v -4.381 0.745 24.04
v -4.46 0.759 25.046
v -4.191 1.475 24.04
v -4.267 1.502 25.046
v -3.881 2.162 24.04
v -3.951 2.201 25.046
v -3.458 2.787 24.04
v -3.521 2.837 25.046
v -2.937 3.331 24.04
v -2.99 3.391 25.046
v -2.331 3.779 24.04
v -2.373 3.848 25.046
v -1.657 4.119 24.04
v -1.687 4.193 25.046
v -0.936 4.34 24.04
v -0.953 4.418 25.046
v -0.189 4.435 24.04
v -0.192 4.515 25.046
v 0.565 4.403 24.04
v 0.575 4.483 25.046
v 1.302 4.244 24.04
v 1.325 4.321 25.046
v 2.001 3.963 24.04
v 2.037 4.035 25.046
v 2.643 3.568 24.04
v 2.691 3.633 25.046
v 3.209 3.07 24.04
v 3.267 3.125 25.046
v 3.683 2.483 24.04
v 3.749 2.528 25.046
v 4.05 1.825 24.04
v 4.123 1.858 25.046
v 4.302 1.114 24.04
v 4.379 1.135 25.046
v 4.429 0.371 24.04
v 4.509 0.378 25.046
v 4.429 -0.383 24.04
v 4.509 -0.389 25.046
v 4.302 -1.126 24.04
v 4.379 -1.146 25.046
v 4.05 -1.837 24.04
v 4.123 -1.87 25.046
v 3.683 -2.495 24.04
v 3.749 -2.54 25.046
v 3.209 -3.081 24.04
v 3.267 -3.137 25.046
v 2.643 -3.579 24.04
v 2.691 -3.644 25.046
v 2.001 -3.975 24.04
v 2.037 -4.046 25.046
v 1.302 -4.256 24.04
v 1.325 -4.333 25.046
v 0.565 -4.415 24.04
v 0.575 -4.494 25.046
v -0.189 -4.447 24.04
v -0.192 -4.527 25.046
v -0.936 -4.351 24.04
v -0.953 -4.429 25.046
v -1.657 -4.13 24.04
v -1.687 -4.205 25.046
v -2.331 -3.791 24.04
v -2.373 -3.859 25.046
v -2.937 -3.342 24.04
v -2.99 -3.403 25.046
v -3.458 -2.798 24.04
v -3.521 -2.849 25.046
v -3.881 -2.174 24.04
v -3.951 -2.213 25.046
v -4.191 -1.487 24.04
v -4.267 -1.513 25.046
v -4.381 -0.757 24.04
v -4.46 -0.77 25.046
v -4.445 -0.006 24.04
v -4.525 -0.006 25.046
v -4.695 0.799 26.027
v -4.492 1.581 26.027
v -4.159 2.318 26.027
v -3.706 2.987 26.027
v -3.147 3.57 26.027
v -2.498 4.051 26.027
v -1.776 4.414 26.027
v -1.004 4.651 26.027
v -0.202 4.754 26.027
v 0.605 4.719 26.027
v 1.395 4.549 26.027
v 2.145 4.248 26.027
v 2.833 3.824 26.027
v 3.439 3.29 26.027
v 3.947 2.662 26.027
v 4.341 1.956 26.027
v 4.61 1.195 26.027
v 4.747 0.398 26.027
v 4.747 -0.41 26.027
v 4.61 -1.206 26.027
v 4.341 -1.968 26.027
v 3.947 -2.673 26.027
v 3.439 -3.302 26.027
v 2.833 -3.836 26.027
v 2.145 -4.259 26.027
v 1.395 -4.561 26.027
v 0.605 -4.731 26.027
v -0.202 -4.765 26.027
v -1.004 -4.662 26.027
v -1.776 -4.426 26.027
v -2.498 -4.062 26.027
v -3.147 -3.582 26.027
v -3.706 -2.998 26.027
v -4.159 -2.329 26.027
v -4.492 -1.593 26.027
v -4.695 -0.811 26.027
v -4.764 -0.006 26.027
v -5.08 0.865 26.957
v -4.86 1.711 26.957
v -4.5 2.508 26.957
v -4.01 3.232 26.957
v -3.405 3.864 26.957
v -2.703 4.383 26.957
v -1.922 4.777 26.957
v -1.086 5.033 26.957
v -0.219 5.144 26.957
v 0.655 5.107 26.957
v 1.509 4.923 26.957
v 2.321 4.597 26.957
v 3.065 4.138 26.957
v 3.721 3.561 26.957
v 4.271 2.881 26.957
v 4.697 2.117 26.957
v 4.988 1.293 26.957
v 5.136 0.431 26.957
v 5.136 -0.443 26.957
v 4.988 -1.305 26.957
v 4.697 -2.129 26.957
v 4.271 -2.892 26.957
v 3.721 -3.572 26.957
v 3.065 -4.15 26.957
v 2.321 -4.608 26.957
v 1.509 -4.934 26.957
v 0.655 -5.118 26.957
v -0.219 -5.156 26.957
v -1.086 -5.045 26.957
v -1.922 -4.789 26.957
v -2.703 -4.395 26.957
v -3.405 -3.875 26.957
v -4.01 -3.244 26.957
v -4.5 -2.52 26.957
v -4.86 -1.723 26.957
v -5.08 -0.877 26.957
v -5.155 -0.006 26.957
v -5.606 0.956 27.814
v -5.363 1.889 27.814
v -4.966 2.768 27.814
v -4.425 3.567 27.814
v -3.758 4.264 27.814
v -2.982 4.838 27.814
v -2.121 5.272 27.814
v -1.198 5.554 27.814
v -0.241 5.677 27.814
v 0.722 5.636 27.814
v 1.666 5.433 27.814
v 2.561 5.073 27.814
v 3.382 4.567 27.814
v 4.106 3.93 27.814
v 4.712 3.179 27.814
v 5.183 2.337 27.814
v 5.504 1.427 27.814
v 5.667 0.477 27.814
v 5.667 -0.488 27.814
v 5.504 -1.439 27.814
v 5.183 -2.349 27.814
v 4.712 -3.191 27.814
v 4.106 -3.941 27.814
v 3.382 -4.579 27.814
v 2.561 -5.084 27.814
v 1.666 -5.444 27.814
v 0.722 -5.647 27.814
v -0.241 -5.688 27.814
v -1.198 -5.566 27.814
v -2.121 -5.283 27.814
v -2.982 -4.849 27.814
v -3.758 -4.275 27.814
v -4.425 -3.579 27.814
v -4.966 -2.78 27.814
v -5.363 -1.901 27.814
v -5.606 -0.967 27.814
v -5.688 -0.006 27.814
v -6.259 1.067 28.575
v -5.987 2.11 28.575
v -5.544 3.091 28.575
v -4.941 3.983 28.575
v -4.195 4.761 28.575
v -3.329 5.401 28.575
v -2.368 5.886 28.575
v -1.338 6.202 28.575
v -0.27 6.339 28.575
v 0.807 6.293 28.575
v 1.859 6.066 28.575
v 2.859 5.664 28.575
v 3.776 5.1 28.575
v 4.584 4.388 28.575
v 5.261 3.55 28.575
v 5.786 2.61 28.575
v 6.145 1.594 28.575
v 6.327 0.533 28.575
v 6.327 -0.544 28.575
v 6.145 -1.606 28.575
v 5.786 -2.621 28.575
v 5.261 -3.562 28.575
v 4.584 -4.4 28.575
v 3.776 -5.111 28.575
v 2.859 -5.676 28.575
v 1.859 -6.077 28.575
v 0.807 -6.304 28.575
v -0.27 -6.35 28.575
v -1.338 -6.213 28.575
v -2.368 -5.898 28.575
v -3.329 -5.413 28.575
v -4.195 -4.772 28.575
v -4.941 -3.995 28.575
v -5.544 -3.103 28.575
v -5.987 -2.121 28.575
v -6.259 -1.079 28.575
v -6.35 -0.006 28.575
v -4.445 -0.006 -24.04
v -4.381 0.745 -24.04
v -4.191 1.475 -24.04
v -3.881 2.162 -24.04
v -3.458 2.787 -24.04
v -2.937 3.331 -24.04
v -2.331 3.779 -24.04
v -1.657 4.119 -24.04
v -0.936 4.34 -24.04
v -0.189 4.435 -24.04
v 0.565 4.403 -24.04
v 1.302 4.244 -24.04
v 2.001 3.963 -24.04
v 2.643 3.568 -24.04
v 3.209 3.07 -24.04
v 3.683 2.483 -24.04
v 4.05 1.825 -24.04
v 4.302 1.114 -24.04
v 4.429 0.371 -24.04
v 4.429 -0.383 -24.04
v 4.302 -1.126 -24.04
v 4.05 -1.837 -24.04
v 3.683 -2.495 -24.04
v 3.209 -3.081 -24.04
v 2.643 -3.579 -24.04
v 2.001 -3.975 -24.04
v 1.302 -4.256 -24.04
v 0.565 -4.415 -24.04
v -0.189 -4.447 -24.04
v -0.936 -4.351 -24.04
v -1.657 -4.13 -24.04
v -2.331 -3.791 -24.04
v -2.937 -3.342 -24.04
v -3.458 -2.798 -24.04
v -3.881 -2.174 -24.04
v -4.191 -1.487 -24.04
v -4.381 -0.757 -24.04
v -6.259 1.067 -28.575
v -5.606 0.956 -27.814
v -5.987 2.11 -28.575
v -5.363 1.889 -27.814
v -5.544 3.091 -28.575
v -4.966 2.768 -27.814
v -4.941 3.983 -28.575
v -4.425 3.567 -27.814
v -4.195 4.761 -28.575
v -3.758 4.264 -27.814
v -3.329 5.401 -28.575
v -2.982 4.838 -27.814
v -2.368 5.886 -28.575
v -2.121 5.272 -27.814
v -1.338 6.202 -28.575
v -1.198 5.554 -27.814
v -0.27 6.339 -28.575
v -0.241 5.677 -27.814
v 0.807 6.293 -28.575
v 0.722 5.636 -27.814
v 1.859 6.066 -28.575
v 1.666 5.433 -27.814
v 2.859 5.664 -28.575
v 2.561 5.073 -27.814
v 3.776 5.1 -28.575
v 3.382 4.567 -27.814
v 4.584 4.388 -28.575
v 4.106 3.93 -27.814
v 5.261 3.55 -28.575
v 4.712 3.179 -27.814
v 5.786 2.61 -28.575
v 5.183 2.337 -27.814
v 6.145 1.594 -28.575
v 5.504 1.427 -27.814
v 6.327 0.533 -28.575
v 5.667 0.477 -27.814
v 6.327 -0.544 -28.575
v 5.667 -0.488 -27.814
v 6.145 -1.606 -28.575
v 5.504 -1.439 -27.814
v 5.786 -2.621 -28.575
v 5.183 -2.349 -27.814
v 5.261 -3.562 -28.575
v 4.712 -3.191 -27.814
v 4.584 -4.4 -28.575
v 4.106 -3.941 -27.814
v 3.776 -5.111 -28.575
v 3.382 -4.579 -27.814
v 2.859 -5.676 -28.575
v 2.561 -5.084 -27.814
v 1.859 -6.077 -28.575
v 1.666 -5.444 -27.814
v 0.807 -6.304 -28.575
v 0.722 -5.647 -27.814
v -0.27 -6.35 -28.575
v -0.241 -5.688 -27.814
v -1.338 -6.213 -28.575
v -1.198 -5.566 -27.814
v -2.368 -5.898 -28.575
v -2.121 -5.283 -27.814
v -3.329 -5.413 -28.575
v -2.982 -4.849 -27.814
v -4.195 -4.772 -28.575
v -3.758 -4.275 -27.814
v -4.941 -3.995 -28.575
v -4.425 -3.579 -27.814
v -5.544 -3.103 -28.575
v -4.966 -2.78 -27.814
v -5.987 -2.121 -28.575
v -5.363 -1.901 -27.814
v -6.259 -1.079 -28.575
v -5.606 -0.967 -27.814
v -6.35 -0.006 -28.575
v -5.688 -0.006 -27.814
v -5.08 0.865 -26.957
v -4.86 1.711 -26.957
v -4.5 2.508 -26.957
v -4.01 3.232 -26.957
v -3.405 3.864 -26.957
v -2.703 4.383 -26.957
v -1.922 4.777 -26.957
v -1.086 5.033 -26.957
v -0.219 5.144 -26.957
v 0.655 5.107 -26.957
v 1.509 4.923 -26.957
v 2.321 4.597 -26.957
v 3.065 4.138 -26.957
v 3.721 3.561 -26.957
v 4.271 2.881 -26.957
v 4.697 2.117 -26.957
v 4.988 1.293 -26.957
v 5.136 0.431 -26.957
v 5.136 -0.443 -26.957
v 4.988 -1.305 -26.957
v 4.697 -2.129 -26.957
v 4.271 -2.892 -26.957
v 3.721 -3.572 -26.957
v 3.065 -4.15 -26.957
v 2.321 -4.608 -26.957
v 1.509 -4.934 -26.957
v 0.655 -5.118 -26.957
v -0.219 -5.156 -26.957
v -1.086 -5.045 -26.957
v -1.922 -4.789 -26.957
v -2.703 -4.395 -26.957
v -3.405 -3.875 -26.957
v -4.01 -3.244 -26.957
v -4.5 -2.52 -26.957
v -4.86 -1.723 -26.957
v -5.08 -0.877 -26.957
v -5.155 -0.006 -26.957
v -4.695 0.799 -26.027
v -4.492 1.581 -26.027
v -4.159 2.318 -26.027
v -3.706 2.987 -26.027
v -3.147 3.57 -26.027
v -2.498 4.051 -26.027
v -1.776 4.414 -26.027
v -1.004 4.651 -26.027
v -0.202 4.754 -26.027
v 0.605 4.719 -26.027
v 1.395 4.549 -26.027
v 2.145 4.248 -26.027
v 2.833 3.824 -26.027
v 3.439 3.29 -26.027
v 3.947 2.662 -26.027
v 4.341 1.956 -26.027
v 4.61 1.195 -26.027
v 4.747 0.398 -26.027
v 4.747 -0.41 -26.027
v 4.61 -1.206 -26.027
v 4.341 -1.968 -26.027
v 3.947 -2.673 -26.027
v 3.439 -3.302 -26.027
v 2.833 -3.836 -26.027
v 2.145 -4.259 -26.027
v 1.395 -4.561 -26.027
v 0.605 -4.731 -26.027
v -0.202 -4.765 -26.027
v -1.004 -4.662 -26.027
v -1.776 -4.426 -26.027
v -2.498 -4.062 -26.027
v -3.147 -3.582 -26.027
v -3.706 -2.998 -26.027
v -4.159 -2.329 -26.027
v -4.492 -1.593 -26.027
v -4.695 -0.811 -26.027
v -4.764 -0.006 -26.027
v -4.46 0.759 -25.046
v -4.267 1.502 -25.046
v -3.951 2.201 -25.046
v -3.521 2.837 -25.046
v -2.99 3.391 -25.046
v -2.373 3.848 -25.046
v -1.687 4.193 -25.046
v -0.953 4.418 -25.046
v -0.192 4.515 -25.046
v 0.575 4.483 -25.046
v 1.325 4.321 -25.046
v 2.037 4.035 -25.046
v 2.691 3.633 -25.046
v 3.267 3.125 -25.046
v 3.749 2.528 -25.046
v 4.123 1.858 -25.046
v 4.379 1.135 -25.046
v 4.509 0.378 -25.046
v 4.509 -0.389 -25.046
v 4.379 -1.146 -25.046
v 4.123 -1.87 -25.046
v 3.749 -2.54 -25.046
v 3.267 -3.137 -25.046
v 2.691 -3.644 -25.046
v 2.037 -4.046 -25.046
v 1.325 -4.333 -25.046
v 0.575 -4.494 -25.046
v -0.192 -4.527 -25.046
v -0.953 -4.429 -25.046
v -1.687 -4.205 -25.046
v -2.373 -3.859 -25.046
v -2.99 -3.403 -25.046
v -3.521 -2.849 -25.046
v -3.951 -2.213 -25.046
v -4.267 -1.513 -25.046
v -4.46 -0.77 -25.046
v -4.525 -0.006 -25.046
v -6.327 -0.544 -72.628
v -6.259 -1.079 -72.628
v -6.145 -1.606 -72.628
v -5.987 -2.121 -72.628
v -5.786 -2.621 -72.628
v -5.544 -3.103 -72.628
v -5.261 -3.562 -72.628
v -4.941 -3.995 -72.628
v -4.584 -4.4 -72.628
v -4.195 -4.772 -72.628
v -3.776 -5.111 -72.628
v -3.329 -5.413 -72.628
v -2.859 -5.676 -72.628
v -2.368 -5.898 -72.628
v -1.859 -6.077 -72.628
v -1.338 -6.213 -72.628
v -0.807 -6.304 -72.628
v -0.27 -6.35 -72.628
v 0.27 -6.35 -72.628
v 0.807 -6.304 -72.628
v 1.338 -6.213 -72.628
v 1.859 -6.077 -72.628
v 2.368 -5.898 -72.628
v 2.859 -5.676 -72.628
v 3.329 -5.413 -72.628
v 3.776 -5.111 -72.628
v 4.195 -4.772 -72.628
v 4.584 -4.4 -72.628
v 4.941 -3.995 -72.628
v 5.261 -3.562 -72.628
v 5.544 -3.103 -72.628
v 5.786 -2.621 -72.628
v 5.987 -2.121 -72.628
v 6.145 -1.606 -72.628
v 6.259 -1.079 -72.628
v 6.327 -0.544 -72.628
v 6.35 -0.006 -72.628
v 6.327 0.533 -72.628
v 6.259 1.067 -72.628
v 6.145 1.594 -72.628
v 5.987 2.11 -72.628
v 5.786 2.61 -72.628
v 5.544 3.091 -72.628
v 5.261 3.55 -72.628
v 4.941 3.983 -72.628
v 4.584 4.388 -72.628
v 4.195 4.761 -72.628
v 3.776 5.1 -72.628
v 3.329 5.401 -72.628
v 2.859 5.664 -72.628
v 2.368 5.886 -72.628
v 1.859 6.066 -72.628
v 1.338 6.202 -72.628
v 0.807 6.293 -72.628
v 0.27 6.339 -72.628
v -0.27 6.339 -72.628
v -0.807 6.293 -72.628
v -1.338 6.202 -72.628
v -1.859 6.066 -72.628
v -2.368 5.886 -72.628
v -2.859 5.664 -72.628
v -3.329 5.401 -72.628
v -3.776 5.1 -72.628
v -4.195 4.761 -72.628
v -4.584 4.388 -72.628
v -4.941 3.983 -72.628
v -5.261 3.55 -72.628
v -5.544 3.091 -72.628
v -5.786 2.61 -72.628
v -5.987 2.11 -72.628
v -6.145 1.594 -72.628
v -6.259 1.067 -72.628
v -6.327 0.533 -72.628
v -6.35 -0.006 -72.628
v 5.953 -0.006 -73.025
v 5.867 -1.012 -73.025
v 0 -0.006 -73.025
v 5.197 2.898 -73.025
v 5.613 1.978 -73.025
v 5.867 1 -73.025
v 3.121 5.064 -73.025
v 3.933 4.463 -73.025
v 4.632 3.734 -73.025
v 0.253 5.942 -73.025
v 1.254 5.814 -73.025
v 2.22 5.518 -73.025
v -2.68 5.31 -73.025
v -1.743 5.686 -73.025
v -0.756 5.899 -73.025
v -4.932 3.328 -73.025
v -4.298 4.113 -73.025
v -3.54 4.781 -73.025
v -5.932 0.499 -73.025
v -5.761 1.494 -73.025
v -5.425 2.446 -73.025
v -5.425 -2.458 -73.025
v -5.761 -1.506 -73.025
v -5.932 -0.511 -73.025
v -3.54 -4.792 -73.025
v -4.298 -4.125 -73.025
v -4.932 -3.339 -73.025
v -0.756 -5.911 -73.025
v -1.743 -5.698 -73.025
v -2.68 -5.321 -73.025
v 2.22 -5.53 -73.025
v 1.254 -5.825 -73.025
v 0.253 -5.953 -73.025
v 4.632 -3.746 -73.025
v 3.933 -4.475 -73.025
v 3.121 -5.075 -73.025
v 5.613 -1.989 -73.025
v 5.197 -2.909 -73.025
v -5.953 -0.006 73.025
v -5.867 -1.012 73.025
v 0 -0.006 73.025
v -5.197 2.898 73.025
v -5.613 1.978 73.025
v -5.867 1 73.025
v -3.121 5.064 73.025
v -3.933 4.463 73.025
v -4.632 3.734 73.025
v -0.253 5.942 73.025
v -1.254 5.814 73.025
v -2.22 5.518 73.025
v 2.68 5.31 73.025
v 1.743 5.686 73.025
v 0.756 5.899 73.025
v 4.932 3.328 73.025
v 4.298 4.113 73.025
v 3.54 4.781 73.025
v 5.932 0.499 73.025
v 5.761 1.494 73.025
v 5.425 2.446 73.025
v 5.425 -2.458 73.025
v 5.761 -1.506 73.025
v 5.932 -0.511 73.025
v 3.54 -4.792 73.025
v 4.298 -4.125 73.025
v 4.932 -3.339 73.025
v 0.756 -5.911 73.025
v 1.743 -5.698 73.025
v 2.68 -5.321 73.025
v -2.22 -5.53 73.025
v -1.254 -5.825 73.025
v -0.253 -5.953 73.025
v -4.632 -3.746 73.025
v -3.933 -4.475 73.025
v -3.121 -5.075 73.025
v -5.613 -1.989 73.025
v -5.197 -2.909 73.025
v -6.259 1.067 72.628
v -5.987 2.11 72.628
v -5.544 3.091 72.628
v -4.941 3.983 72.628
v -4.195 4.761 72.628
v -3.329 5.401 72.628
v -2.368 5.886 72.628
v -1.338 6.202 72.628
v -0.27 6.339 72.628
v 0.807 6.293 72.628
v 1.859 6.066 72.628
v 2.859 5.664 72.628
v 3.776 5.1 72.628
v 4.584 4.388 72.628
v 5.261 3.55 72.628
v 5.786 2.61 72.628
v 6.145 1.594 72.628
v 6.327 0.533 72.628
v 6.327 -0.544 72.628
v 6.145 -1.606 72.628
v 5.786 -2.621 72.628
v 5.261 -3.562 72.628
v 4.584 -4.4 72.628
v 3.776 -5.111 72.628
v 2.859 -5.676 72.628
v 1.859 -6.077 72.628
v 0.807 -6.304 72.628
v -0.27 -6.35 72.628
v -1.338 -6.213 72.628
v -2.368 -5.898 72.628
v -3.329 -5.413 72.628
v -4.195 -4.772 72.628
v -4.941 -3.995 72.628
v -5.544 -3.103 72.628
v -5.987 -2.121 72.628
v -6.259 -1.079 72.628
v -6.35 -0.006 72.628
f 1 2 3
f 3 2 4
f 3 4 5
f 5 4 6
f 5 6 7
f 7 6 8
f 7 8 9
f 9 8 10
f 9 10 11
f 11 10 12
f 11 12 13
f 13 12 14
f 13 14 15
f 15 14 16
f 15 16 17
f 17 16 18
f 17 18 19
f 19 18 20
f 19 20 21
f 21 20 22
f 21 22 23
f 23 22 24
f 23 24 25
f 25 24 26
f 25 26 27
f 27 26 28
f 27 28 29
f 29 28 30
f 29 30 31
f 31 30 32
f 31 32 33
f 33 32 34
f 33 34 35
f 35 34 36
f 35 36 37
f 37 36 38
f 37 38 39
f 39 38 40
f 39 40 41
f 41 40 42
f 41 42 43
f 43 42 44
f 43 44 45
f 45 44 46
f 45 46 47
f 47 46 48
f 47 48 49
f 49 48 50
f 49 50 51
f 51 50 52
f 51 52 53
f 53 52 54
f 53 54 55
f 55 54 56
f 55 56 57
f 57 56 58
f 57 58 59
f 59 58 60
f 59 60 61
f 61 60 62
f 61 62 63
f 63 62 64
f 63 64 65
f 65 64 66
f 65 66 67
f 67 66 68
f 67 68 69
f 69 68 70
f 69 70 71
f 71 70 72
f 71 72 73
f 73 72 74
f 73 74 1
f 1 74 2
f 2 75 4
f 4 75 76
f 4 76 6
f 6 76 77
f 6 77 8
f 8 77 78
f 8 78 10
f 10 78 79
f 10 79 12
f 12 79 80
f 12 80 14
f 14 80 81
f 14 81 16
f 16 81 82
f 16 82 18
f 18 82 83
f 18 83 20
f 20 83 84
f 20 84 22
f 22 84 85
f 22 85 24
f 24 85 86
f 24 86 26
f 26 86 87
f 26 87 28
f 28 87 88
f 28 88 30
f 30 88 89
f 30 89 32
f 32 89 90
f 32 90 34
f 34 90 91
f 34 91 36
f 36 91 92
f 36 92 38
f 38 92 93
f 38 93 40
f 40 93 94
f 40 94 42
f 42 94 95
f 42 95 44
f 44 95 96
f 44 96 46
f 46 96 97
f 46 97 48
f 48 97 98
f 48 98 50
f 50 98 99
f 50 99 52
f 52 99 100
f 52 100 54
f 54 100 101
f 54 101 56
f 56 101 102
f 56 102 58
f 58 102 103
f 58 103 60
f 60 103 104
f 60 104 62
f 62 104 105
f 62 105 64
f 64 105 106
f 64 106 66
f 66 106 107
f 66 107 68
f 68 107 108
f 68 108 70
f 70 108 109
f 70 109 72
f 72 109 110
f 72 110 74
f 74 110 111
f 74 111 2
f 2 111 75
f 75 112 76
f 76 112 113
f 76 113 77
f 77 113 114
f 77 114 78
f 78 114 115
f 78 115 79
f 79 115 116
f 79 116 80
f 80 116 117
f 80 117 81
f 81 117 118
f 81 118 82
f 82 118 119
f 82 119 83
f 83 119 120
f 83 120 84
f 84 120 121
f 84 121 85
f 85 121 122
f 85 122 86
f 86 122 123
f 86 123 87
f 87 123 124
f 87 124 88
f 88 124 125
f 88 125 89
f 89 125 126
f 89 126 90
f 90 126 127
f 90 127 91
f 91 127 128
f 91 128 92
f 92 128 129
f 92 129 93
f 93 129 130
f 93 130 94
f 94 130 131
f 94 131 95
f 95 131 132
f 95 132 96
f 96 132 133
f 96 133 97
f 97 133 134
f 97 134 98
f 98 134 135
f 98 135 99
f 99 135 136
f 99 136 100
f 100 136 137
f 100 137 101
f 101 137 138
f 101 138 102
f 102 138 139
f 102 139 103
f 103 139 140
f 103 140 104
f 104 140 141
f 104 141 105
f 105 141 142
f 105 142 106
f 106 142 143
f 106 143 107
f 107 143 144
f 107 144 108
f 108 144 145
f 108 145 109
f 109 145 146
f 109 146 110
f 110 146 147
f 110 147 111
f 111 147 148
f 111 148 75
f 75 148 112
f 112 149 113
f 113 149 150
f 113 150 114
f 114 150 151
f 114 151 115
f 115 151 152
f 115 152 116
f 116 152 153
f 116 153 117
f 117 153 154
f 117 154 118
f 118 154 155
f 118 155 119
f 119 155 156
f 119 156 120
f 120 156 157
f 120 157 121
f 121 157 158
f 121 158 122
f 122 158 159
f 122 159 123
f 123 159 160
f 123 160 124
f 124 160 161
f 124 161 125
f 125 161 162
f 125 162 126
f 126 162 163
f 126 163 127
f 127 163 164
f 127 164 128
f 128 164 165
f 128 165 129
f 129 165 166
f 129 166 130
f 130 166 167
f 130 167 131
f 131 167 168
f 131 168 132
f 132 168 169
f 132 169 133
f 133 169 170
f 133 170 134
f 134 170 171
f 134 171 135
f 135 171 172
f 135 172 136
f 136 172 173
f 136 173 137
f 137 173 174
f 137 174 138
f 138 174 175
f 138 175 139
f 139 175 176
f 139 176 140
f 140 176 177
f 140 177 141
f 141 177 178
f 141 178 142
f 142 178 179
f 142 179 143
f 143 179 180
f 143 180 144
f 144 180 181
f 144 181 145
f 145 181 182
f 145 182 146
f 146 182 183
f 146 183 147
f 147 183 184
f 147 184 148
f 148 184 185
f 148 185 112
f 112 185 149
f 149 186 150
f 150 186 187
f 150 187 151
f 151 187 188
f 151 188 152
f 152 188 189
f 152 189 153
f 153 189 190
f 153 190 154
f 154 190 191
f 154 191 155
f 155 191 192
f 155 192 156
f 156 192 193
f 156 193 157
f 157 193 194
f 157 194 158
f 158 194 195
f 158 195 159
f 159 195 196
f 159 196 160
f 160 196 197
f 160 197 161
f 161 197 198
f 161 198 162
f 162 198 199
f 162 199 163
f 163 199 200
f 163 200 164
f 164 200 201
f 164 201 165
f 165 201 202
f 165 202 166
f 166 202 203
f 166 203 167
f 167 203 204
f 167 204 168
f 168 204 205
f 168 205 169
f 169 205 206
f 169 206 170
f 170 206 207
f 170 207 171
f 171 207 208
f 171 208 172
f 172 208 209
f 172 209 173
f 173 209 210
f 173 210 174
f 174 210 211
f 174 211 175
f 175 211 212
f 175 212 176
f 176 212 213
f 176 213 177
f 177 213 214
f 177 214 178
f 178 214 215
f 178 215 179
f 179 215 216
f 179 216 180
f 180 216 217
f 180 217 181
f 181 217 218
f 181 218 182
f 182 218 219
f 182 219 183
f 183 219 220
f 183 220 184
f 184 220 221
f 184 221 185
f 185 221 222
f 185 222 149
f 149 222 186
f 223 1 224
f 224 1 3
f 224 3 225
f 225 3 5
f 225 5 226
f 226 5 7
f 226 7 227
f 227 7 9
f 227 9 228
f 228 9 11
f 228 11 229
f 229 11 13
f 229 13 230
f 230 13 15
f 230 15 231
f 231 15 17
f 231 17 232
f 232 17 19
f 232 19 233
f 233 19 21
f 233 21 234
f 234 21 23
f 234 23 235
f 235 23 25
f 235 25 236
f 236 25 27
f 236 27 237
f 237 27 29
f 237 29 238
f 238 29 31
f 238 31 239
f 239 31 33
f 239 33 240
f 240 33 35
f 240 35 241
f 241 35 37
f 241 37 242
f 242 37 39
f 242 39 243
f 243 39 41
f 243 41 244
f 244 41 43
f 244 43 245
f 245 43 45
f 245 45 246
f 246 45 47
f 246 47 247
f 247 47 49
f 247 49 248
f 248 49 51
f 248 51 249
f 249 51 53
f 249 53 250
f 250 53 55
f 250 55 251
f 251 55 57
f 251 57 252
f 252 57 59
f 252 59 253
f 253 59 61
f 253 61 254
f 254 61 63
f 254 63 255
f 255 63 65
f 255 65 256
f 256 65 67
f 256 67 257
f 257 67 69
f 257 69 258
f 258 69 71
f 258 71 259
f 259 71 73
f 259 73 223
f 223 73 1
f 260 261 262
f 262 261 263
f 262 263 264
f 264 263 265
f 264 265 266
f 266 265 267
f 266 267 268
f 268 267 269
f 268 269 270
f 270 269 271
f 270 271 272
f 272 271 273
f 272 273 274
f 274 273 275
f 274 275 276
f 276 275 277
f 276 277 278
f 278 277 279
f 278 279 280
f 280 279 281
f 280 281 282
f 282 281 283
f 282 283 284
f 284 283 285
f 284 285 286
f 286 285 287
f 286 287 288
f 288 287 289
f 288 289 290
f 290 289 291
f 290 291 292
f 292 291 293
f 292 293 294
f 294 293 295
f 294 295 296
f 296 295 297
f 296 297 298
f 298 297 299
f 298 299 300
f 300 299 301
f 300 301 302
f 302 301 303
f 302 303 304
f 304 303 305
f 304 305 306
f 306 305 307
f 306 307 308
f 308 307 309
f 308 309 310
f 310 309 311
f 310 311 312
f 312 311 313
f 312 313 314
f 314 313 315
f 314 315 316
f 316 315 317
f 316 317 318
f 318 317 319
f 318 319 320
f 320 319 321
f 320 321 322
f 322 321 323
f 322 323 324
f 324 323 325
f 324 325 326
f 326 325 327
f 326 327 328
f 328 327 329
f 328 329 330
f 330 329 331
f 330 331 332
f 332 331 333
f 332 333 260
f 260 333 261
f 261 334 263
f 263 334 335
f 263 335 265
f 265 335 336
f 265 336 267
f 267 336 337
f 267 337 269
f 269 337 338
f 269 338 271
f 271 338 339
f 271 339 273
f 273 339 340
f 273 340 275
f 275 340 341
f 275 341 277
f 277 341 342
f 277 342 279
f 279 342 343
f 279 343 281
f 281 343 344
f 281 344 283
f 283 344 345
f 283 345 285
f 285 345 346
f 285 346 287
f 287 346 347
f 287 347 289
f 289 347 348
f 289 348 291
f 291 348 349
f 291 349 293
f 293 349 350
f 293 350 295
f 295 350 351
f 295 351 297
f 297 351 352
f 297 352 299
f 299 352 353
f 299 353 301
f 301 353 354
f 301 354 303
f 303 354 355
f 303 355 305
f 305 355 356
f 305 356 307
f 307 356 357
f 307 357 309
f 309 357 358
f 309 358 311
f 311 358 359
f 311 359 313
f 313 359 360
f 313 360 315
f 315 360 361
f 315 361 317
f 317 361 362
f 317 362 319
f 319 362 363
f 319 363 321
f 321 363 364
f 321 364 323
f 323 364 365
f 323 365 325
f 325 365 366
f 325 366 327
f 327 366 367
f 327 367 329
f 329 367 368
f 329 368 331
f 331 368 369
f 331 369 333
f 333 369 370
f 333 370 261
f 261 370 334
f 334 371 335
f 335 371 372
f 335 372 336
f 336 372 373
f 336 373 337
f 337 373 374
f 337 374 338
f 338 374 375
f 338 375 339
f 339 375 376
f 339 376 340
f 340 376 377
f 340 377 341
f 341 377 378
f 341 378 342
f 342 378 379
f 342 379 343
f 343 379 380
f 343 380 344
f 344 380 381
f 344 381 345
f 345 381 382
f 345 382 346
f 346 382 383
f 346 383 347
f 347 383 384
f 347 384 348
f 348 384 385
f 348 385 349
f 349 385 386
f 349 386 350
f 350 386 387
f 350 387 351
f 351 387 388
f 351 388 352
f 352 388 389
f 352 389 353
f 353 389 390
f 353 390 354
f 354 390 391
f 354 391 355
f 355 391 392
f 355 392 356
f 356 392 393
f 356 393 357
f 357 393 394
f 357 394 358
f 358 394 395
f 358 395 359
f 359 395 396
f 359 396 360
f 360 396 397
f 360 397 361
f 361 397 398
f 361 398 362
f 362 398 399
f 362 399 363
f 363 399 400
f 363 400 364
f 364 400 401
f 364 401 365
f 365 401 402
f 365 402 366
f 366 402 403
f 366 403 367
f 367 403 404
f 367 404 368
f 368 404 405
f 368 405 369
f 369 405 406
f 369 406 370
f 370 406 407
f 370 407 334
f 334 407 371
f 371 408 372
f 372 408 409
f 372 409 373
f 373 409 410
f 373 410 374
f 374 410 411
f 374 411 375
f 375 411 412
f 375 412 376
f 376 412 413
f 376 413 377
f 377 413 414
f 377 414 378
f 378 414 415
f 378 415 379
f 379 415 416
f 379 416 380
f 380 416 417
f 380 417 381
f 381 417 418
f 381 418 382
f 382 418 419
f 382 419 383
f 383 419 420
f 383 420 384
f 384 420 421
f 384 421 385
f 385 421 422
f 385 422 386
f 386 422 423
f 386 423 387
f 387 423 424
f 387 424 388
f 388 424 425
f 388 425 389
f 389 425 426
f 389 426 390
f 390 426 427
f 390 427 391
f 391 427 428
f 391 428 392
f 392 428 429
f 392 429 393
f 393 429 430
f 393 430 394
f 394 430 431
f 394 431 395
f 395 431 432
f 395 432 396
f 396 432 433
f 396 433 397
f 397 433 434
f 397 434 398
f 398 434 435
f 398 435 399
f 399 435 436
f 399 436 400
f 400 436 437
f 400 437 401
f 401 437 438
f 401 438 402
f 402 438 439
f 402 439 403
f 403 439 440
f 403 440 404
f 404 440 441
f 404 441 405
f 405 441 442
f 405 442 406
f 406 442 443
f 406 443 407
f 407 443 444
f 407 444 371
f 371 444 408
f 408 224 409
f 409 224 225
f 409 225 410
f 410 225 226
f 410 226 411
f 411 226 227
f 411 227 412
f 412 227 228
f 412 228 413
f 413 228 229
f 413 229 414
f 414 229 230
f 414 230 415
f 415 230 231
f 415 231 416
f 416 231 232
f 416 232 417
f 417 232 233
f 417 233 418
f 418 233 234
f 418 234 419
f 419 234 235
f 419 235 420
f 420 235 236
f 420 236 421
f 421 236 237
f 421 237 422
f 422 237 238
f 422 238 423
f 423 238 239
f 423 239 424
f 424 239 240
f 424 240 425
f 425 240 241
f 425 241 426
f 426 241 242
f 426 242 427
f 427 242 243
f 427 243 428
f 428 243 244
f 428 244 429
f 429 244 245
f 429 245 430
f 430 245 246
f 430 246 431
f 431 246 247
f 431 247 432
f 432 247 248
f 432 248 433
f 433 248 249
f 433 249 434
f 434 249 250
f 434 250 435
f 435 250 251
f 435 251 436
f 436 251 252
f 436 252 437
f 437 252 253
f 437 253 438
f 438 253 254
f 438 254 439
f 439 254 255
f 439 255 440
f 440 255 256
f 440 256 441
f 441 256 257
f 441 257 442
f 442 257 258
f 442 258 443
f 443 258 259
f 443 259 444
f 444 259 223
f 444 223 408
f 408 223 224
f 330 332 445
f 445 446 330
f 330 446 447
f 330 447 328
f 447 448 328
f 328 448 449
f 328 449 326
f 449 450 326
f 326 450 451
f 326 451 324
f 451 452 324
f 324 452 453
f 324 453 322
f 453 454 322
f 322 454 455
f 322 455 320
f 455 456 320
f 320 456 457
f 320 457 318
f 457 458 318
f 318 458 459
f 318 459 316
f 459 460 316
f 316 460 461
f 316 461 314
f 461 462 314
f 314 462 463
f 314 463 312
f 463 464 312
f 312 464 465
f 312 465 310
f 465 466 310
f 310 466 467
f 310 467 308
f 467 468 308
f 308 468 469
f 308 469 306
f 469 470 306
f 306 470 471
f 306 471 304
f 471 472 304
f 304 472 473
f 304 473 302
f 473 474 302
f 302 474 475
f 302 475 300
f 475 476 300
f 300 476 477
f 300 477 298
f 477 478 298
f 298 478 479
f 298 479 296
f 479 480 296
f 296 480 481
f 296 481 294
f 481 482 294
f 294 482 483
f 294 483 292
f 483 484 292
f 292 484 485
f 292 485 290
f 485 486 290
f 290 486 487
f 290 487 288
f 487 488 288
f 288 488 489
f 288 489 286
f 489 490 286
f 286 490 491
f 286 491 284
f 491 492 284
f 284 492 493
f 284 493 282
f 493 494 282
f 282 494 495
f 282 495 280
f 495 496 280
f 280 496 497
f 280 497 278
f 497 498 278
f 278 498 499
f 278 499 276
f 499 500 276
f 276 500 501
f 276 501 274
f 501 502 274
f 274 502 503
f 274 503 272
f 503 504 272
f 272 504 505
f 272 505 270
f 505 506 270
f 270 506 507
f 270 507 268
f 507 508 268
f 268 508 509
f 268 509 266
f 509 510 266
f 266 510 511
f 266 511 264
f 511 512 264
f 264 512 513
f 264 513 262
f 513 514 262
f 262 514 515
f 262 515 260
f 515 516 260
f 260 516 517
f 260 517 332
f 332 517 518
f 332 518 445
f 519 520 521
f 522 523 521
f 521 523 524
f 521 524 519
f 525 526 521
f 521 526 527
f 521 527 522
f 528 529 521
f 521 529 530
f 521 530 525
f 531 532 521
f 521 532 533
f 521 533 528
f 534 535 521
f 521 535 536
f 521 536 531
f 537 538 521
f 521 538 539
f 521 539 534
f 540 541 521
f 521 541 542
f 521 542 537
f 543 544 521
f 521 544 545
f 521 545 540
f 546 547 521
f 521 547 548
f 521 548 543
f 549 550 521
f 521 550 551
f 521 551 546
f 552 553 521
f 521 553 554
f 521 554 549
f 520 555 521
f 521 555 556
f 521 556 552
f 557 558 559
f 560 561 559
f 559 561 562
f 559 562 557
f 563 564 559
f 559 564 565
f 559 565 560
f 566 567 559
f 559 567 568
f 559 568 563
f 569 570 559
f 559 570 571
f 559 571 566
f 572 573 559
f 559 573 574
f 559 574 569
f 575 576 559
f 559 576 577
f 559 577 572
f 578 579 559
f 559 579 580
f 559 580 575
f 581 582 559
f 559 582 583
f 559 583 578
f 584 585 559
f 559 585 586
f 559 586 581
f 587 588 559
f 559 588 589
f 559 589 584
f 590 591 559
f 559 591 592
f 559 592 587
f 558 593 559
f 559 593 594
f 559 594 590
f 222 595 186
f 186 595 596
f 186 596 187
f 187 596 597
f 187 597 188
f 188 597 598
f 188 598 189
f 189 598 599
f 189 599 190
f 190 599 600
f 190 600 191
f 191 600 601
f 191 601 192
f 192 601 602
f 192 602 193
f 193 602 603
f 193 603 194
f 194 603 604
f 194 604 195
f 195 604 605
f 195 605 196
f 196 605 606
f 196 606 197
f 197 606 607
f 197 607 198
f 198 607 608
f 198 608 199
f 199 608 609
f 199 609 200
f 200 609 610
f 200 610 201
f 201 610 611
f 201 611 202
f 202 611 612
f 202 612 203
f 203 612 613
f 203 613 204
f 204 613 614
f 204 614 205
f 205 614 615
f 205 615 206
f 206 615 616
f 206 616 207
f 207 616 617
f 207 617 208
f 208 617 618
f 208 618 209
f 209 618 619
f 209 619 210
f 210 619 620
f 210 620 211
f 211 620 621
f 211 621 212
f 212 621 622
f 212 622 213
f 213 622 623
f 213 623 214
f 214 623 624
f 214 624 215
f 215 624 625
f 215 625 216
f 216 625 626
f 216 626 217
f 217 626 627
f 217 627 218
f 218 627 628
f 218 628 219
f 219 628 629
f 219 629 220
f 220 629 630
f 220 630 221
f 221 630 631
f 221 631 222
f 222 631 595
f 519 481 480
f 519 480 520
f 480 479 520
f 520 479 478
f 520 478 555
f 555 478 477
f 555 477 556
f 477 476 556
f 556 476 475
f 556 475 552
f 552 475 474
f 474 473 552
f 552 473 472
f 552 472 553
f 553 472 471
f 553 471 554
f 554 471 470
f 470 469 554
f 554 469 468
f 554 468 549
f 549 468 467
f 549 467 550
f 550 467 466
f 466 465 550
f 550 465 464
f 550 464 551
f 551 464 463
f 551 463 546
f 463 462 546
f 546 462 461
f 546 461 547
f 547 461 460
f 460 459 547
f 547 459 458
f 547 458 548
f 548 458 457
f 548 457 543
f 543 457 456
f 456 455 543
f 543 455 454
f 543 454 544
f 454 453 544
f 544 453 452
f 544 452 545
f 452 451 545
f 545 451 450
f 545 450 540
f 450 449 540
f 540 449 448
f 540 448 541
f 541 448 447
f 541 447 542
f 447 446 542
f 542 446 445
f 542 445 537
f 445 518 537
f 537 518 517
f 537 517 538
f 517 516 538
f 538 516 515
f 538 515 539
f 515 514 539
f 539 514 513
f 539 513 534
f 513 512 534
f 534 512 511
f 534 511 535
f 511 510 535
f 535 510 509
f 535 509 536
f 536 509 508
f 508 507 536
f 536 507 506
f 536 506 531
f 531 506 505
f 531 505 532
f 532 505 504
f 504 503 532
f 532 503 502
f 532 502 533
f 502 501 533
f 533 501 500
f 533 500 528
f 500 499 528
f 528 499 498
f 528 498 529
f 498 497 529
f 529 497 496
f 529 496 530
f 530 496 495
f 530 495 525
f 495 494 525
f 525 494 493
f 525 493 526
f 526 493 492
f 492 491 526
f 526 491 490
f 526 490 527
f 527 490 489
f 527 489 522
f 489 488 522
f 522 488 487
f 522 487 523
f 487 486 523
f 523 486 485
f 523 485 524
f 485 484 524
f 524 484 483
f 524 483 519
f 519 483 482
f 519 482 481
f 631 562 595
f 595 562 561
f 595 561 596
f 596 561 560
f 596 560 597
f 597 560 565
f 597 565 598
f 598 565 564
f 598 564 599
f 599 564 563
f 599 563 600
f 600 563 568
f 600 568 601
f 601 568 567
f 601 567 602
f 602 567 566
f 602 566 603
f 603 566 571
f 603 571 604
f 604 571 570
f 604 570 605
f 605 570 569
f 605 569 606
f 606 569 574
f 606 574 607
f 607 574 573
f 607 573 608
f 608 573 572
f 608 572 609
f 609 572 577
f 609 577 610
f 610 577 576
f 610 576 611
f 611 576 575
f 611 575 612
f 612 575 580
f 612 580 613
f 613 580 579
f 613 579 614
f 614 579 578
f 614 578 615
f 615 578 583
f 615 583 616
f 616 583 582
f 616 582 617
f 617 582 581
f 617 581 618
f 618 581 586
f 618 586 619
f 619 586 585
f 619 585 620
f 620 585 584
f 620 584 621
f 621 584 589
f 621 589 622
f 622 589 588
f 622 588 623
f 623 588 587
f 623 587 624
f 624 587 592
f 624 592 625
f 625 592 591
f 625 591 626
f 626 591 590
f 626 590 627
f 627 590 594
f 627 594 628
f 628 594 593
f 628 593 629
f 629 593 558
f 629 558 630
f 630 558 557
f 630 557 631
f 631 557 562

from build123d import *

# Parameters (mm, degrees)
CHAMFER1_SIZE = 0.396875


with BuildPart() as part:
    # Sketch1 → Revolve1 (revolve)
    with BuildSketch(Plane(origin=(0, 0, 0), x_dir=(1, 0, 0), z_dir=(0, 1, 0))):
        with BuildLine():
            Line((0, 73.025), (0, -73.025))
            Line((0, -73.025), (6.35, -73.025))
            Line((6.35, -73.025), (6.35, -28.575))
            ThreePointArc((6.35, -28.575), (4.94058927, -26.499537373), (4.445, -24.040192948))
            Line((4.445, -24.040192948), (4.445, 24.040192948))
            ThreePointArc((4.445, 24.040192948), (4.94058927, 26.499537373), (6.35, 28.575))
            Line((6.35, 28.575), (6.35, 73.025))
            Line((6.35, 73.025), (0, 73.025))
        make_face()
    revolve(axis=Axis((0, 0, -73.025), (0, 0, 1)))

    # Chamfer1
    chamfer1_edges = [part.edges().sort_by_distance(p)[0] for p in [
        (-6.35, 0, 73.025),
        (-6.35, 0, -73.025),
    ]]
    chamfer(chamfer1_edges, length=CHAMFER1_SIZE)


solid = part.part
